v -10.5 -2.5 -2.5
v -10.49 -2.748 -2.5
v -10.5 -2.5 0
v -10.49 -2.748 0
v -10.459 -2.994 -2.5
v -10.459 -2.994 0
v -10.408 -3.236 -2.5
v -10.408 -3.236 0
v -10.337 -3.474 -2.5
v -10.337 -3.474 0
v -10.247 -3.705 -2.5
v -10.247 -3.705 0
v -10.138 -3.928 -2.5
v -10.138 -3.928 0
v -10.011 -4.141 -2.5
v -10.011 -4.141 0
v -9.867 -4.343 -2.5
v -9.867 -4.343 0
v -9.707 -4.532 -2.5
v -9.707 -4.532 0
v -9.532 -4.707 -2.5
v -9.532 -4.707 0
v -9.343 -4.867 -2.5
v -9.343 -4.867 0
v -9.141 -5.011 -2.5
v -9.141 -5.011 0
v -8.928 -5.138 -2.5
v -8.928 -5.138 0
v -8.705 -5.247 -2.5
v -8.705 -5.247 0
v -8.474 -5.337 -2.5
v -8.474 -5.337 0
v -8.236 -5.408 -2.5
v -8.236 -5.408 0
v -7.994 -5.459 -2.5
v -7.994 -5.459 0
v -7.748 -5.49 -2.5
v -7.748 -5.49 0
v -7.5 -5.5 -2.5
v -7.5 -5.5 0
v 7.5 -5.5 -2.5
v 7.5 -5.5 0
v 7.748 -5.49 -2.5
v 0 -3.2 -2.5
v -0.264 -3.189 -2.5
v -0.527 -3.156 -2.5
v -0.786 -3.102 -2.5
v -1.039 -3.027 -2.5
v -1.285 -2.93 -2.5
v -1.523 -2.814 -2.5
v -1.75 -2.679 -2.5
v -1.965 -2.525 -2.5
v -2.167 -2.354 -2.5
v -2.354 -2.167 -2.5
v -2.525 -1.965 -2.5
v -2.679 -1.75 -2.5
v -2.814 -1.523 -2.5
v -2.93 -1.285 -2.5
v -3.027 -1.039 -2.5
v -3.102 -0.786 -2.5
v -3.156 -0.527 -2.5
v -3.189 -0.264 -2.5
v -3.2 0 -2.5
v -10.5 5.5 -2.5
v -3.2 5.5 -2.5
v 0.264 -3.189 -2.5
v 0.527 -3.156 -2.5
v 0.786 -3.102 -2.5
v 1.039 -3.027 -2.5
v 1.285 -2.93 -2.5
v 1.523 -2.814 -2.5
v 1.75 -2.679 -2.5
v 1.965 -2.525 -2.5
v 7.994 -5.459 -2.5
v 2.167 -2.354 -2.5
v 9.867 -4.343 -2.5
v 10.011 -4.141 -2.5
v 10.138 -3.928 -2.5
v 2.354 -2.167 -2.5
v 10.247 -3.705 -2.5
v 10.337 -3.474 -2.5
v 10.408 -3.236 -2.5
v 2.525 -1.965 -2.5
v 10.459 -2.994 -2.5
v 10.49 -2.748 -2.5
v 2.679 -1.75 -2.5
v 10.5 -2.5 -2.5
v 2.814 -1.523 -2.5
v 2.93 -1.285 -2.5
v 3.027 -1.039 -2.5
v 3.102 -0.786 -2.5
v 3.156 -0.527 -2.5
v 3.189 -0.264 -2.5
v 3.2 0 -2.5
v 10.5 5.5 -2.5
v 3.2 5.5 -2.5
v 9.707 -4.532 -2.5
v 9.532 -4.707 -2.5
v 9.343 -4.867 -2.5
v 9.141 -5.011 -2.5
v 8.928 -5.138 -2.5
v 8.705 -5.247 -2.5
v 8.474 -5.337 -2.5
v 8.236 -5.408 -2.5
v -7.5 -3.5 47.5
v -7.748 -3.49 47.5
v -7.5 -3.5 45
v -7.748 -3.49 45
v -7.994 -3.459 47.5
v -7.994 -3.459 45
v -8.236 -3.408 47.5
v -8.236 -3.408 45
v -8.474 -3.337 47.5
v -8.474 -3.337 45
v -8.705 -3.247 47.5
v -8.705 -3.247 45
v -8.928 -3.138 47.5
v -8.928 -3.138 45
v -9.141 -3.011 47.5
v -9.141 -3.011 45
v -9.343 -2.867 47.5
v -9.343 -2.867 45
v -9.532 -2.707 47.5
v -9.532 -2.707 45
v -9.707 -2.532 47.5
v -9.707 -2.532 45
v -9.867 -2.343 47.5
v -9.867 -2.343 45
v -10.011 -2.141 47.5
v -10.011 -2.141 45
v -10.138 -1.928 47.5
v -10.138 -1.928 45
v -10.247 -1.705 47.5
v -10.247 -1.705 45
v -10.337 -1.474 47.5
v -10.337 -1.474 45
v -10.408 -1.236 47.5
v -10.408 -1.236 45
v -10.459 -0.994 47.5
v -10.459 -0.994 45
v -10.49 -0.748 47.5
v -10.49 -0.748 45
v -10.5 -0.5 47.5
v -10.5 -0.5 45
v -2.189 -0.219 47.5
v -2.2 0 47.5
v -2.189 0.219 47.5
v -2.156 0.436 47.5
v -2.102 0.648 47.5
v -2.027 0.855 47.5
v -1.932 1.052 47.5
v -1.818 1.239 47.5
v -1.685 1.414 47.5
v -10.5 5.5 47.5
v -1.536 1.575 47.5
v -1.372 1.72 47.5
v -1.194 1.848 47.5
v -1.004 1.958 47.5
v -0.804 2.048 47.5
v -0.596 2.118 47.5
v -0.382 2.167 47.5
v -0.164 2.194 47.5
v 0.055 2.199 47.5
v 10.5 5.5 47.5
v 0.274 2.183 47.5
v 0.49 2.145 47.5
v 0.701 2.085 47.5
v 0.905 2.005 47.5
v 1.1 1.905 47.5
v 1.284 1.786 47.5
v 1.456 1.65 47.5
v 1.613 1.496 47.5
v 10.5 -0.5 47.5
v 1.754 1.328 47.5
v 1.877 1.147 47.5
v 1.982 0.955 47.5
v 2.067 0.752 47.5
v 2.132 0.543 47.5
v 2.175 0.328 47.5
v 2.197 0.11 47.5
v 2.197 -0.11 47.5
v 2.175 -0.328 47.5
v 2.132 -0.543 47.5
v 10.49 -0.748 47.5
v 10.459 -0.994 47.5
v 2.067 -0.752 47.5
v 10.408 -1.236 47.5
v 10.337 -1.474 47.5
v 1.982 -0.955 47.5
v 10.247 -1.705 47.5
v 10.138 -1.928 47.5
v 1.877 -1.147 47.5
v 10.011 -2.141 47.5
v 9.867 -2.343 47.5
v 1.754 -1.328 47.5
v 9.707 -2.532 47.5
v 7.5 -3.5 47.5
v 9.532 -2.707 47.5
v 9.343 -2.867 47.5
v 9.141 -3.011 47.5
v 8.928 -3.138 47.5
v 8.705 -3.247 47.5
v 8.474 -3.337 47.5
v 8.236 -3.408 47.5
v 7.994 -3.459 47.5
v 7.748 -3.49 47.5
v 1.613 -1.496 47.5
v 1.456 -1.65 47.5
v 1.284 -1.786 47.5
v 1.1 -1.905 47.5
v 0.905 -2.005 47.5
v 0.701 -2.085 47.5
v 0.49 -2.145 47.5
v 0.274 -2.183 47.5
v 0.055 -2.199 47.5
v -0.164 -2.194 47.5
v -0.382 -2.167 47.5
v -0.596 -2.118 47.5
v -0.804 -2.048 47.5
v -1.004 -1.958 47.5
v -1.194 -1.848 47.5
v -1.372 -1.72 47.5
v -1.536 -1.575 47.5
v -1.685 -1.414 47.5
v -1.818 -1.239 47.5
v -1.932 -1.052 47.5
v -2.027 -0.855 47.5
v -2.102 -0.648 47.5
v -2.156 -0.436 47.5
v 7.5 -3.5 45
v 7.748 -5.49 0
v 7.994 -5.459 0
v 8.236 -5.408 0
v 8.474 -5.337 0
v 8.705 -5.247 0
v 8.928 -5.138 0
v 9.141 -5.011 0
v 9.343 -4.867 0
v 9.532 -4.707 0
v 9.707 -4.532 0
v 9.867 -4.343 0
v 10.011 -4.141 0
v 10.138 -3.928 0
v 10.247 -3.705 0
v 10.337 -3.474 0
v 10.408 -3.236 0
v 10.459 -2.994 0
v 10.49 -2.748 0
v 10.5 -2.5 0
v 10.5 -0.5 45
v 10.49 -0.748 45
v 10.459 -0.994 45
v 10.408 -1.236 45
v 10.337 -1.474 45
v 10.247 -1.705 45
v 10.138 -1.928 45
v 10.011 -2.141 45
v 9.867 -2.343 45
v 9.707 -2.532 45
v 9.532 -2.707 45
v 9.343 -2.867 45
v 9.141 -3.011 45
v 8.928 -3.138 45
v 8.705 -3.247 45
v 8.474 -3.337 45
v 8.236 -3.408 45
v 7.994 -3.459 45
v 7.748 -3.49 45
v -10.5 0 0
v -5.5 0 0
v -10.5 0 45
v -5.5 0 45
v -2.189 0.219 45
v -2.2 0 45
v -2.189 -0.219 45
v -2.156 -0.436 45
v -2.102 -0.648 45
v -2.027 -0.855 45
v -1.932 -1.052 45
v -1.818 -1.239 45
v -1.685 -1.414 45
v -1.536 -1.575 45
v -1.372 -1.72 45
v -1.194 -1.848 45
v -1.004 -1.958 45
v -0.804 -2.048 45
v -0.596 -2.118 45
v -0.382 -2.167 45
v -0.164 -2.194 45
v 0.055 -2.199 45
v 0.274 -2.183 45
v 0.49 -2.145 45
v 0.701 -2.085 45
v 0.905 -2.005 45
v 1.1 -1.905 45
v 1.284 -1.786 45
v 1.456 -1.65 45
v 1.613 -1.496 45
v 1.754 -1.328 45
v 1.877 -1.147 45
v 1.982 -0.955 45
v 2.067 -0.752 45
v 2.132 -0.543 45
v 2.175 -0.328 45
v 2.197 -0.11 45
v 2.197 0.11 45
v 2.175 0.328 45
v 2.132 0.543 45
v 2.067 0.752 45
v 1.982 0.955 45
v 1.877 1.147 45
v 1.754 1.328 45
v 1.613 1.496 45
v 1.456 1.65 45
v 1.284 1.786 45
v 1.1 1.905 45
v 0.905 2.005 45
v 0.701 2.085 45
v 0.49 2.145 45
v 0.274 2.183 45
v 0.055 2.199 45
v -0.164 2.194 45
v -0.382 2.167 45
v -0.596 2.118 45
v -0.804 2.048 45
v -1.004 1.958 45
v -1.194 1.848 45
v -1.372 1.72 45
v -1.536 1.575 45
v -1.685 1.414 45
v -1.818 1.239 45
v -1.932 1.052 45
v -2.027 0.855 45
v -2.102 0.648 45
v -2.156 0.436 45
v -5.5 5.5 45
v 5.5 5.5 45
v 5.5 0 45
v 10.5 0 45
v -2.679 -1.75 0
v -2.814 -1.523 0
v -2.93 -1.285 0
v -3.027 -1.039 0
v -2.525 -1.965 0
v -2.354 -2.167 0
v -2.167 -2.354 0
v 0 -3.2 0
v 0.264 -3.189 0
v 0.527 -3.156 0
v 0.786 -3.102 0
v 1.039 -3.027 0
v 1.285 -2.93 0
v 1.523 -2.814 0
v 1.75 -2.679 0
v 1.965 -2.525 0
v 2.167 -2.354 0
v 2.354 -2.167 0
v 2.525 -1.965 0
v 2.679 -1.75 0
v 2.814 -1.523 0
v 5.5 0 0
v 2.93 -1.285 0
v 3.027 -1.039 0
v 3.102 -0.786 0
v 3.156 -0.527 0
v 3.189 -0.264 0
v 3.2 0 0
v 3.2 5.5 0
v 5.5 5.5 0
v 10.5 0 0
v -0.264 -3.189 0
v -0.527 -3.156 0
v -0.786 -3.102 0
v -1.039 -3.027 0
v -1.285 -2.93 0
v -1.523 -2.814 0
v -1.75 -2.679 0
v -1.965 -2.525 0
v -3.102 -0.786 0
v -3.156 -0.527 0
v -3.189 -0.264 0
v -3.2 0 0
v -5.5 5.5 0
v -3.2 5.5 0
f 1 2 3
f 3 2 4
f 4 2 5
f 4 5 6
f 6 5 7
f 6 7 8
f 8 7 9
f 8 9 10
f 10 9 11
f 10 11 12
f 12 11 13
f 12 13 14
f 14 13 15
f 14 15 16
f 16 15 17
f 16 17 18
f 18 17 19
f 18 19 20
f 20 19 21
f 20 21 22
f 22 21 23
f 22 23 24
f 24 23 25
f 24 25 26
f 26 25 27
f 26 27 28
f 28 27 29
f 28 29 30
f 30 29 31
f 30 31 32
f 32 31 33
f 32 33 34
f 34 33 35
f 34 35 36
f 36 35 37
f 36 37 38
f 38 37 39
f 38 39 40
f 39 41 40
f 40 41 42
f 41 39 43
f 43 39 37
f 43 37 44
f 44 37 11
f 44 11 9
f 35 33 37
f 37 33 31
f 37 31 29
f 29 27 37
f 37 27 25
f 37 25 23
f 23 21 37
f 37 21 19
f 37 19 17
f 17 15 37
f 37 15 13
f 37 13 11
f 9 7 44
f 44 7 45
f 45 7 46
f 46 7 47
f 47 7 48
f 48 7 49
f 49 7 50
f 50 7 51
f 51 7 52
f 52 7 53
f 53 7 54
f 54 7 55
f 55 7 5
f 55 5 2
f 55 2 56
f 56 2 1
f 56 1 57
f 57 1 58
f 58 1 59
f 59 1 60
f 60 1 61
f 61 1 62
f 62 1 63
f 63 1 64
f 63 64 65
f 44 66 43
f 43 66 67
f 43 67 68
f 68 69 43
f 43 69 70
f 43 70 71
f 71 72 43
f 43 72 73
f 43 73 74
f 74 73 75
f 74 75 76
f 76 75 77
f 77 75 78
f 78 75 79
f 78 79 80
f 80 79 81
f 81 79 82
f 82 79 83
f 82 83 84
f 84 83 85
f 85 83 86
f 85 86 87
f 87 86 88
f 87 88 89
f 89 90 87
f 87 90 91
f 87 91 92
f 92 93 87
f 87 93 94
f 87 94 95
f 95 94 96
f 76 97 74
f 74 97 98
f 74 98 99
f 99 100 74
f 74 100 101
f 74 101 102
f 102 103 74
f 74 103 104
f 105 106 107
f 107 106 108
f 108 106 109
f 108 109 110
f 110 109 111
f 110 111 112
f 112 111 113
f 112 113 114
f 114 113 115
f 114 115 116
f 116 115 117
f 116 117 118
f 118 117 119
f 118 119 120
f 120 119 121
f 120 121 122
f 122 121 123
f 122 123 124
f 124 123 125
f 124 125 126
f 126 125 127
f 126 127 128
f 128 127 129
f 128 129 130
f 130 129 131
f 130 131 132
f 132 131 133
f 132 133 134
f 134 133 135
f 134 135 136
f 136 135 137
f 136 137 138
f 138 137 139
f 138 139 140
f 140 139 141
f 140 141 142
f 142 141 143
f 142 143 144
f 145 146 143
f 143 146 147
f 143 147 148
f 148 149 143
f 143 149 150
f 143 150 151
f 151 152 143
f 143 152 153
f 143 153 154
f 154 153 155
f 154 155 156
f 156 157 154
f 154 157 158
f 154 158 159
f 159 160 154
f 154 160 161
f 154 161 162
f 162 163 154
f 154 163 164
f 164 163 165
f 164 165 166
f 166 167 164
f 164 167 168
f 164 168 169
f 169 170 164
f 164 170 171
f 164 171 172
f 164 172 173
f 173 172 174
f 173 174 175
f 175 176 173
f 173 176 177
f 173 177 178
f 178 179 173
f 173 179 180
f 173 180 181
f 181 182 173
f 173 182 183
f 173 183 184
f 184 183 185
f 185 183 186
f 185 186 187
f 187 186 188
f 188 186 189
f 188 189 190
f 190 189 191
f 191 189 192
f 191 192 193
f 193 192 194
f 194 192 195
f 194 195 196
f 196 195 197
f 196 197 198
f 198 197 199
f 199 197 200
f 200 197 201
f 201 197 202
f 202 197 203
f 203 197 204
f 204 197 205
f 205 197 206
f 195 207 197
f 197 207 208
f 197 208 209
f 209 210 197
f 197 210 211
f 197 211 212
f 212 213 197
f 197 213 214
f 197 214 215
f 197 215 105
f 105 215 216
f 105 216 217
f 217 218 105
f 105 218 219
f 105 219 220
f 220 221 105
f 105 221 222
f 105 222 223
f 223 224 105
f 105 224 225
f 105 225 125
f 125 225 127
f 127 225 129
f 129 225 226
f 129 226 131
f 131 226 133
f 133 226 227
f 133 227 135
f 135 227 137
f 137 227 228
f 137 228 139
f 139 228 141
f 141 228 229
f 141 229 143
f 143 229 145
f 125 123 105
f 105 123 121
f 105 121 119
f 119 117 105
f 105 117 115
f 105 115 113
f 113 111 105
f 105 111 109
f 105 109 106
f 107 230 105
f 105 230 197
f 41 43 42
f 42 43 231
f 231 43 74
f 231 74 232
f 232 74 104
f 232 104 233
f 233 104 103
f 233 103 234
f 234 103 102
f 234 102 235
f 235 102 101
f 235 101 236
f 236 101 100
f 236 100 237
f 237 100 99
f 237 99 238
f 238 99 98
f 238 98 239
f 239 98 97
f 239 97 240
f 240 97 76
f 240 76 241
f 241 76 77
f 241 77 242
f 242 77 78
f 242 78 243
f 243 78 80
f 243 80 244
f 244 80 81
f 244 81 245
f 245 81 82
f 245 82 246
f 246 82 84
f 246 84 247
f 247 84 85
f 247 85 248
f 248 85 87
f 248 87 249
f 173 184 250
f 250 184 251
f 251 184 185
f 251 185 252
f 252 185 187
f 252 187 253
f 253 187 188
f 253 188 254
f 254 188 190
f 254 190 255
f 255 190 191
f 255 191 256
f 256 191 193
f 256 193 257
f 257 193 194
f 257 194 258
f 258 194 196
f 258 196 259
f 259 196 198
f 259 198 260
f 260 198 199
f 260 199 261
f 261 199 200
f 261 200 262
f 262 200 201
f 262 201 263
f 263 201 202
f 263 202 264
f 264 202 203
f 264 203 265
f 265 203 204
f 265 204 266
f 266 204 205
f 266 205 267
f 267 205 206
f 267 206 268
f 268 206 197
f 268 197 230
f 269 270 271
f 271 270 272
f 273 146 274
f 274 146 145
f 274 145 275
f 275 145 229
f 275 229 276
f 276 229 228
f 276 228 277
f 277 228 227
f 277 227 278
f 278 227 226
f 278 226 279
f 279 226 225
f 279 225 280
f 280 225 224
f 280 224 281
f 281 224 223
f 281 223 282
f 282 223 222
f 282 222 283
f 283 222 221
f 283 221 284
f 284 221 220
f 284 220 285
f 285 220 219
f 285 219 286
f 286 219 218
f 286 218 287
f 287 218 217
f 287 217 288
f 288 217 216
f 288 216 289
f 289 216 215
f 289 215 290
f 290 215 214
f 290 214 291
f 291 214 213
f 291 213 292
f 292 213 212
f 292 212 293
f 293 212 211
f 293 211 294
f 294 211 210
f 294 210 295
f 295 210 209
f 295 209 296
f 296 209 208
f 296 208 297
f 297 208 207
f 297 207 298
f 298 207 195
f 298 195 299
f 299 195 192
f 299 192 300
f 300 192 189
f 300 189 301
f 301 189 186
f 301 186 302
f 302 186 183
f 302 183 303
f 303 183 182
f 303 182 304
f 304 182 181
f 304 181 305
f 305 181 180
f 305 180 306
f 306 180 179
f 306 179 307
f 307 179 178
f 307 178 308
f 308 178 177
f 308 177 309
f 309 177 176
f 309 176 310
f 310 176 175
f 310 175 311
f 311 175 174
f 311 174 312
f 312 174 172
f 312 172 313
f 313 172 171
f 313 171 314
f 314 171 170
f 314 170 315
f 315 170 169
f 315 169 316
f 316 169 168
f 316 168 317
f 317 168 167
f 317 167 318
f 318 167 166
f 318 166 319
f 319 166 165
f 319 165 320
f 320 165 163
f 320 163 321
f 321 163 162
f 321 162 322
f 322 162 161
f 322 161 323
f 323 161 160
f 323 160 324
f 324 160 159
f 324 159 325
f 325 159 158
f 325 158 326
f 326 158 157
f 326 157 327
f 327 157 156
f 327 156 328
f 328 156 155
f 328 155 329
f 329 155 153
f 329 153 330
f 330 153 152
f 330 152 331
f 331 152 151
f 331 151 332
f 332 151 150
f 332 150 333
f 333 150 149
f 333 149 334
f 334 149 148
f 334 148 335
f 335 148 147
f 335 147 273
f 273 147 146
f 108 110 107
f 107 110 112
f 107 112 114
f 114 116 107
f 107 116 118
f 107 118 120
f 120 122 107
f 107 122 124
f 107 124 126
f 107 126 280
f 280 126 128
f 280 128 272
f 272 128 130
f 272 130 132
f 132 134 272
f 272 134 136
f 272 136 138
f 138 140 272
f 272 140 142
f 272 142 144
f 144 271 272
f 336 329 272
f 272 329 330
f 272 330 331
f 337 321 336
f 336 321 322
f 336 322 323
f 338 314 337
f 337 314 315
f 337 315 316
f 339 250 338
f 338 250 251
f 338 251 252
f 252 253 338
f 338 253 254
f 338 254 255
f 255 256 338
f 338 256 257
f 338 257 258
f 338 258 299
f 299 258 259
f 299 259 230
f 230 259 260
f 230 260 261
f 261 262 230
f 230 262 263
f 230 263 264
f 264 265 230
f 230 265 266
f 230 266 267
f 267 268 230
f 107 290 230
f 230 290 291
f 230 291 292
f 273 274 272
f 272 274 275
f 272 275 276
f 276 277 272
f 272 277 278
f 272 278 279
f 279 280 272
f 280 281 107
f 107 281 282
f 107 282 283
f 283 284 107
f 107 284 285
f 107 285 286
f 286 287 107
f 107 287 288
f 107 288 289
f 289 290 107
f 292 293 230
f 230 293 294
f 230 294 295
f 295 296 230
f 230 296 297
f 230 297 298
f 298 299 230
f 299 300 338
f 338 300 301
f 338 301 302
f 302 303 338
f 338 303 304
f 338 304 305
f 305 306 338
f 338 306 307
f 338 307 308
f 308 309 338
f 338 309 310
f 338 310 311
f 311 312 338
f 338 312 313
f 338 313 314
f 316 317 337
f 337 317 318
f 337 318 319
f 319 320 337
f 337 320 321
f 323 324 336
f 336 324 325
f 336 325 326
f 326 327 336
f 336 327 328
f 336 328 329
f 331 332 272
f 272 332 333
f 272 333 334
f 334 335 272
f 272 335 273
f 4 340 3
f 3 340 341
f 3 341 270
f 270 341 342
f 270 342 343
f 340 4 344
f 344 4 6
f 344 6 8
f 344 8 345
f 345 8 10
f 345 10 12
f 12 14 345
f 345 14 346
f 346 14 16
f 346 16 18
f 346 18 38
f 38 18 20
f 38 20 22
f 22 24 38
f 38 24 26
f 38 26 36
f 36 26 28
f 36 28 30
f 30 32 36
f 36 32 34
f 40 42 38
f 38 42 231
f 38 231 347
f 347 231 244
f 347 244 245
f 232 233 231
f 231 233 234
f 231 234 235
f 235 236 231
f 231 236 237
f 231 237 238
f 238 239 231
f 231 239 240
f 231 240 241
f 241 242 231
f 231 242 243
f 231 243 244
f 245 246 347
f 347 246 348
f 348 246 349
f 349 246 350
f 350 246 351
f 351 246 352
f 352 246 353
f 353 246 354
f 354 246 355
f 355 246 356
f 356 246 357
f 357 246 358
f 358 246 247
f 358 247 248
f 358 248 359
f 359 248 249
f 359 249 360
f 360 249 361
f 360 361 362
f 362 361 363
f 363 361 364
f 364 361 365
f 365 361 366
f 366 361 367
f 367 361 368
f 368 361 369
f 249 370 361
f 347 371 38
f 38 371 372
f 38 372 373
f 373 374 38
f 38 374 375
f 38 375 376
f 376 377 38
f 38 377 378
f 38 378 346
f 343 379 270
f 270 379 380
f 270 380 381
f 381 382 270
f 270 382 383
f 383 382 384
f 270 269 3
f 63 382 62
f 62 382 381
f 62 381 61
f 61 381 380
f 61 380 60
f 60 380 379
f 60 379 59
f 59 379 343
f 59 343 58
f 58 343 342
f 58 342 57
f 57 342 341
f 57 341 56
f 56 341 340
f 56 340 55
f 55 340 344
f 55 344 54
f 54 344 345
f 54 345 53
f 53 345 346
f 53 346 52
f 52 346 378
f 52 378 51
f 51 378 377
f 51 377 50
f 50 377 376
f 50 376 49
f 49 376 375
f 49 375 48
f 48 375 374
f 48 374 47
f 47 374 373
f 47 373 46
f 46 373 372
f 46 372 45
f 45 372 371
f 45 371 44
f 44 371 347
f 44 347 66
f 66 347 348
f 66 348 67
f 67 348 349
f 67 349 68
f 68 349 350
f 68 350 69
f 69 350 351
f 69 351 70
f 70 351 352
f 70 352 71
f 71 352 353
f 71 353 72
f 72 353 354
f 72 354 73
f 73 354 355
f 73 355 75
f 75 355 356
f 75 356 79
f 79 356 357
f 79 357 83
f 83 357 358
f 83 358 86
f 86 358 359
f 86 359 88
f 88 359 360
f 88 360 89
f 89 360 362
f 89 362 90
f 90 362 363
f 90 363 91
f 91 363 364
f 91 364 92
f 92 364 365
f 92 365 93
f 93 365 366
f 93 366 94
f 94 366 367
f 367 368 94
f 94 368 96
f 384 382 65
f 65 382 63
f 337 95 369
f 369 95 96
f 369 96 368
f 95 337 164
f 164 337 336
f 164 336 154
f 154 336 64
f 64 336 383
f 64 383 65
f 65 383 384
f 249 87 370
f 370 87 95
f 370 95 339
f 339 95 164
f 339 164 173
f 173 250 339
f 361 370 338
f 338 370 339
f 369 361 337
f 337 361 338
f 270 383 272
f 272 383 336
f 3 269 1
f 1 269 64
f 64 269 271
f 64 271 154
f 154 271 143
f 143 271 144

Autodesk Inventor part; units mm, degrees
ref_plane "YZ Plane" through (0, 0, 0) normal (1, 0, 0) x (0, 1, 0)
ref_plane "XZ Plane" through (0, 0, 0) normal (0, 1, 0) x (-1, 0, 0)
ref_plane "XY Plane" through (0, 0, 0) normal (0, 0, 1) x (1, 0, 0)
sketch "Sketch1" plane through (0, 0, 0) normal (0, 0, 1) x (1, 0, 0)
  arc A0 (-3.2, 0) -> (3.2, 0) centre (0, 0) ccw
  arc A1 (-5.5, 0) -> (5.5, 0) centre (0, 0) ccw
  line L0 (-3.2, 0) -> (-5.5, 0)
  line L1 (-5.5, 0) -> (-5.5, 5.5)
  line L2 (-5.5, 5.5) -> (-3.2, 5.5)
  line L3 (-3.2, 5.5) -> (-3.2, 0)
  line L4 (3.2, 0) -> (5.5, 0)
  line L5 (5.5, 0) -> (5.5, 5.5)
  line L6 (5.5, 5.5) -> (3.2, 5.5)
  line L7 (3.2, 5.5) -> (3.2, 0)
  line L8 (-5.5, 0) -> (-5.5, 5.5)
  line L9 (-5.5, 5.5) -> (-10.5, 5.5)
  line L10 (-10.5, 5.5) -> (-10.5, 0)
  line L11 (-10.5, 0) -> (-5.5, 0)
  line L12 (5.5, 0) -> (5.5, 5.5)
  line L13 (5.5, 5.5) -> (10.5, 5.5)
  line L14 (10.5, 5.5) -> (10.5, 0)
  line L15 (10.5, 0) -> (5.5, 0)
  line L16 (10.5, 0) -> (10.5, -5.5)
  line L17 (10.5, -5.5) -> (-10.5, -5.5)
  line L18 (-10.5, -5.5) -> (-10.5, 0)
  dimension "d0" = 6.4
  dimension "d1" = 11
  dimension "d2" = 5
  dimension "d3" = 5
extrude "Extr-legs" add sketch "Sketch1" along normal blind 45 contours L11 L10 L9 L1 | L5 L13 L14 L15
extrude "Extr-base" add sketch "Sketch1" against normal blind 2.5 contours A0 L4 A1 L0 | L0 L1 L2 L3 | L7 L6 L5 L4 | L11 L10 L9 L1 | L5 L13 L14 L15
sketch "Sketch2" plane through (0, 0, 45) normal (0, 0, 1) x (1, 0, 0)
  circle A0 centre (0, 0) radius 2.2
  circle A1 centre (0, 0) radius 3.5
  line L0 (5.5, 0) -> (10.5, 0) projected
  line L1 (-10.5, 0) -> (-5.5, 0) projected
  line L2 (-10.5, 0) -> (-10.5, 5.5)
  line L3 (-10.5, 5.5) -> (10.5, 5.5)
  line L4 (10.5, 5.5) -> (10.5, 0)
  line L5 (10.5, 0) -> (2.2, 0)
  line L6 (-2.2, 0) -> (-10.5, 0)
  line L7 (-10.5, 0) -> (-10.5, -3.5)
  line L8 (-10.5, -3.5) -> (10.5, -3.5)
  line L9 (10.5, -3.5) -> (10.5, 0)
  dimension "d8" = 4.4
  dimension "d9" = 7
extrude "Extr-top" add sketch "Sketch2" along normal blind 2.5 contours L5 A1 L6 A0 | A0 L6 A1 L5 | L5 L0 L9 L8 A1 | A1 L6 L1 L2 L3 L4 L0 L5 | A1 L8 L7 L1 L6
extrude "Extrusion4" add sketch "Sketch1" against normal up to surface (2.5 mm away) contours A1 L17 L18 L11 | L15 L16 L17 A1
fillet "Fillet1" radius 3 4 edges at (10.5, -3.5, 46.25) (10.5, -5.5, -1.25) (-10.5, -3.5, 46.25) (-10.5, -5.5, -1.25)
properties part number "cage2table-mount-M4(top)-M6(bottom)"
